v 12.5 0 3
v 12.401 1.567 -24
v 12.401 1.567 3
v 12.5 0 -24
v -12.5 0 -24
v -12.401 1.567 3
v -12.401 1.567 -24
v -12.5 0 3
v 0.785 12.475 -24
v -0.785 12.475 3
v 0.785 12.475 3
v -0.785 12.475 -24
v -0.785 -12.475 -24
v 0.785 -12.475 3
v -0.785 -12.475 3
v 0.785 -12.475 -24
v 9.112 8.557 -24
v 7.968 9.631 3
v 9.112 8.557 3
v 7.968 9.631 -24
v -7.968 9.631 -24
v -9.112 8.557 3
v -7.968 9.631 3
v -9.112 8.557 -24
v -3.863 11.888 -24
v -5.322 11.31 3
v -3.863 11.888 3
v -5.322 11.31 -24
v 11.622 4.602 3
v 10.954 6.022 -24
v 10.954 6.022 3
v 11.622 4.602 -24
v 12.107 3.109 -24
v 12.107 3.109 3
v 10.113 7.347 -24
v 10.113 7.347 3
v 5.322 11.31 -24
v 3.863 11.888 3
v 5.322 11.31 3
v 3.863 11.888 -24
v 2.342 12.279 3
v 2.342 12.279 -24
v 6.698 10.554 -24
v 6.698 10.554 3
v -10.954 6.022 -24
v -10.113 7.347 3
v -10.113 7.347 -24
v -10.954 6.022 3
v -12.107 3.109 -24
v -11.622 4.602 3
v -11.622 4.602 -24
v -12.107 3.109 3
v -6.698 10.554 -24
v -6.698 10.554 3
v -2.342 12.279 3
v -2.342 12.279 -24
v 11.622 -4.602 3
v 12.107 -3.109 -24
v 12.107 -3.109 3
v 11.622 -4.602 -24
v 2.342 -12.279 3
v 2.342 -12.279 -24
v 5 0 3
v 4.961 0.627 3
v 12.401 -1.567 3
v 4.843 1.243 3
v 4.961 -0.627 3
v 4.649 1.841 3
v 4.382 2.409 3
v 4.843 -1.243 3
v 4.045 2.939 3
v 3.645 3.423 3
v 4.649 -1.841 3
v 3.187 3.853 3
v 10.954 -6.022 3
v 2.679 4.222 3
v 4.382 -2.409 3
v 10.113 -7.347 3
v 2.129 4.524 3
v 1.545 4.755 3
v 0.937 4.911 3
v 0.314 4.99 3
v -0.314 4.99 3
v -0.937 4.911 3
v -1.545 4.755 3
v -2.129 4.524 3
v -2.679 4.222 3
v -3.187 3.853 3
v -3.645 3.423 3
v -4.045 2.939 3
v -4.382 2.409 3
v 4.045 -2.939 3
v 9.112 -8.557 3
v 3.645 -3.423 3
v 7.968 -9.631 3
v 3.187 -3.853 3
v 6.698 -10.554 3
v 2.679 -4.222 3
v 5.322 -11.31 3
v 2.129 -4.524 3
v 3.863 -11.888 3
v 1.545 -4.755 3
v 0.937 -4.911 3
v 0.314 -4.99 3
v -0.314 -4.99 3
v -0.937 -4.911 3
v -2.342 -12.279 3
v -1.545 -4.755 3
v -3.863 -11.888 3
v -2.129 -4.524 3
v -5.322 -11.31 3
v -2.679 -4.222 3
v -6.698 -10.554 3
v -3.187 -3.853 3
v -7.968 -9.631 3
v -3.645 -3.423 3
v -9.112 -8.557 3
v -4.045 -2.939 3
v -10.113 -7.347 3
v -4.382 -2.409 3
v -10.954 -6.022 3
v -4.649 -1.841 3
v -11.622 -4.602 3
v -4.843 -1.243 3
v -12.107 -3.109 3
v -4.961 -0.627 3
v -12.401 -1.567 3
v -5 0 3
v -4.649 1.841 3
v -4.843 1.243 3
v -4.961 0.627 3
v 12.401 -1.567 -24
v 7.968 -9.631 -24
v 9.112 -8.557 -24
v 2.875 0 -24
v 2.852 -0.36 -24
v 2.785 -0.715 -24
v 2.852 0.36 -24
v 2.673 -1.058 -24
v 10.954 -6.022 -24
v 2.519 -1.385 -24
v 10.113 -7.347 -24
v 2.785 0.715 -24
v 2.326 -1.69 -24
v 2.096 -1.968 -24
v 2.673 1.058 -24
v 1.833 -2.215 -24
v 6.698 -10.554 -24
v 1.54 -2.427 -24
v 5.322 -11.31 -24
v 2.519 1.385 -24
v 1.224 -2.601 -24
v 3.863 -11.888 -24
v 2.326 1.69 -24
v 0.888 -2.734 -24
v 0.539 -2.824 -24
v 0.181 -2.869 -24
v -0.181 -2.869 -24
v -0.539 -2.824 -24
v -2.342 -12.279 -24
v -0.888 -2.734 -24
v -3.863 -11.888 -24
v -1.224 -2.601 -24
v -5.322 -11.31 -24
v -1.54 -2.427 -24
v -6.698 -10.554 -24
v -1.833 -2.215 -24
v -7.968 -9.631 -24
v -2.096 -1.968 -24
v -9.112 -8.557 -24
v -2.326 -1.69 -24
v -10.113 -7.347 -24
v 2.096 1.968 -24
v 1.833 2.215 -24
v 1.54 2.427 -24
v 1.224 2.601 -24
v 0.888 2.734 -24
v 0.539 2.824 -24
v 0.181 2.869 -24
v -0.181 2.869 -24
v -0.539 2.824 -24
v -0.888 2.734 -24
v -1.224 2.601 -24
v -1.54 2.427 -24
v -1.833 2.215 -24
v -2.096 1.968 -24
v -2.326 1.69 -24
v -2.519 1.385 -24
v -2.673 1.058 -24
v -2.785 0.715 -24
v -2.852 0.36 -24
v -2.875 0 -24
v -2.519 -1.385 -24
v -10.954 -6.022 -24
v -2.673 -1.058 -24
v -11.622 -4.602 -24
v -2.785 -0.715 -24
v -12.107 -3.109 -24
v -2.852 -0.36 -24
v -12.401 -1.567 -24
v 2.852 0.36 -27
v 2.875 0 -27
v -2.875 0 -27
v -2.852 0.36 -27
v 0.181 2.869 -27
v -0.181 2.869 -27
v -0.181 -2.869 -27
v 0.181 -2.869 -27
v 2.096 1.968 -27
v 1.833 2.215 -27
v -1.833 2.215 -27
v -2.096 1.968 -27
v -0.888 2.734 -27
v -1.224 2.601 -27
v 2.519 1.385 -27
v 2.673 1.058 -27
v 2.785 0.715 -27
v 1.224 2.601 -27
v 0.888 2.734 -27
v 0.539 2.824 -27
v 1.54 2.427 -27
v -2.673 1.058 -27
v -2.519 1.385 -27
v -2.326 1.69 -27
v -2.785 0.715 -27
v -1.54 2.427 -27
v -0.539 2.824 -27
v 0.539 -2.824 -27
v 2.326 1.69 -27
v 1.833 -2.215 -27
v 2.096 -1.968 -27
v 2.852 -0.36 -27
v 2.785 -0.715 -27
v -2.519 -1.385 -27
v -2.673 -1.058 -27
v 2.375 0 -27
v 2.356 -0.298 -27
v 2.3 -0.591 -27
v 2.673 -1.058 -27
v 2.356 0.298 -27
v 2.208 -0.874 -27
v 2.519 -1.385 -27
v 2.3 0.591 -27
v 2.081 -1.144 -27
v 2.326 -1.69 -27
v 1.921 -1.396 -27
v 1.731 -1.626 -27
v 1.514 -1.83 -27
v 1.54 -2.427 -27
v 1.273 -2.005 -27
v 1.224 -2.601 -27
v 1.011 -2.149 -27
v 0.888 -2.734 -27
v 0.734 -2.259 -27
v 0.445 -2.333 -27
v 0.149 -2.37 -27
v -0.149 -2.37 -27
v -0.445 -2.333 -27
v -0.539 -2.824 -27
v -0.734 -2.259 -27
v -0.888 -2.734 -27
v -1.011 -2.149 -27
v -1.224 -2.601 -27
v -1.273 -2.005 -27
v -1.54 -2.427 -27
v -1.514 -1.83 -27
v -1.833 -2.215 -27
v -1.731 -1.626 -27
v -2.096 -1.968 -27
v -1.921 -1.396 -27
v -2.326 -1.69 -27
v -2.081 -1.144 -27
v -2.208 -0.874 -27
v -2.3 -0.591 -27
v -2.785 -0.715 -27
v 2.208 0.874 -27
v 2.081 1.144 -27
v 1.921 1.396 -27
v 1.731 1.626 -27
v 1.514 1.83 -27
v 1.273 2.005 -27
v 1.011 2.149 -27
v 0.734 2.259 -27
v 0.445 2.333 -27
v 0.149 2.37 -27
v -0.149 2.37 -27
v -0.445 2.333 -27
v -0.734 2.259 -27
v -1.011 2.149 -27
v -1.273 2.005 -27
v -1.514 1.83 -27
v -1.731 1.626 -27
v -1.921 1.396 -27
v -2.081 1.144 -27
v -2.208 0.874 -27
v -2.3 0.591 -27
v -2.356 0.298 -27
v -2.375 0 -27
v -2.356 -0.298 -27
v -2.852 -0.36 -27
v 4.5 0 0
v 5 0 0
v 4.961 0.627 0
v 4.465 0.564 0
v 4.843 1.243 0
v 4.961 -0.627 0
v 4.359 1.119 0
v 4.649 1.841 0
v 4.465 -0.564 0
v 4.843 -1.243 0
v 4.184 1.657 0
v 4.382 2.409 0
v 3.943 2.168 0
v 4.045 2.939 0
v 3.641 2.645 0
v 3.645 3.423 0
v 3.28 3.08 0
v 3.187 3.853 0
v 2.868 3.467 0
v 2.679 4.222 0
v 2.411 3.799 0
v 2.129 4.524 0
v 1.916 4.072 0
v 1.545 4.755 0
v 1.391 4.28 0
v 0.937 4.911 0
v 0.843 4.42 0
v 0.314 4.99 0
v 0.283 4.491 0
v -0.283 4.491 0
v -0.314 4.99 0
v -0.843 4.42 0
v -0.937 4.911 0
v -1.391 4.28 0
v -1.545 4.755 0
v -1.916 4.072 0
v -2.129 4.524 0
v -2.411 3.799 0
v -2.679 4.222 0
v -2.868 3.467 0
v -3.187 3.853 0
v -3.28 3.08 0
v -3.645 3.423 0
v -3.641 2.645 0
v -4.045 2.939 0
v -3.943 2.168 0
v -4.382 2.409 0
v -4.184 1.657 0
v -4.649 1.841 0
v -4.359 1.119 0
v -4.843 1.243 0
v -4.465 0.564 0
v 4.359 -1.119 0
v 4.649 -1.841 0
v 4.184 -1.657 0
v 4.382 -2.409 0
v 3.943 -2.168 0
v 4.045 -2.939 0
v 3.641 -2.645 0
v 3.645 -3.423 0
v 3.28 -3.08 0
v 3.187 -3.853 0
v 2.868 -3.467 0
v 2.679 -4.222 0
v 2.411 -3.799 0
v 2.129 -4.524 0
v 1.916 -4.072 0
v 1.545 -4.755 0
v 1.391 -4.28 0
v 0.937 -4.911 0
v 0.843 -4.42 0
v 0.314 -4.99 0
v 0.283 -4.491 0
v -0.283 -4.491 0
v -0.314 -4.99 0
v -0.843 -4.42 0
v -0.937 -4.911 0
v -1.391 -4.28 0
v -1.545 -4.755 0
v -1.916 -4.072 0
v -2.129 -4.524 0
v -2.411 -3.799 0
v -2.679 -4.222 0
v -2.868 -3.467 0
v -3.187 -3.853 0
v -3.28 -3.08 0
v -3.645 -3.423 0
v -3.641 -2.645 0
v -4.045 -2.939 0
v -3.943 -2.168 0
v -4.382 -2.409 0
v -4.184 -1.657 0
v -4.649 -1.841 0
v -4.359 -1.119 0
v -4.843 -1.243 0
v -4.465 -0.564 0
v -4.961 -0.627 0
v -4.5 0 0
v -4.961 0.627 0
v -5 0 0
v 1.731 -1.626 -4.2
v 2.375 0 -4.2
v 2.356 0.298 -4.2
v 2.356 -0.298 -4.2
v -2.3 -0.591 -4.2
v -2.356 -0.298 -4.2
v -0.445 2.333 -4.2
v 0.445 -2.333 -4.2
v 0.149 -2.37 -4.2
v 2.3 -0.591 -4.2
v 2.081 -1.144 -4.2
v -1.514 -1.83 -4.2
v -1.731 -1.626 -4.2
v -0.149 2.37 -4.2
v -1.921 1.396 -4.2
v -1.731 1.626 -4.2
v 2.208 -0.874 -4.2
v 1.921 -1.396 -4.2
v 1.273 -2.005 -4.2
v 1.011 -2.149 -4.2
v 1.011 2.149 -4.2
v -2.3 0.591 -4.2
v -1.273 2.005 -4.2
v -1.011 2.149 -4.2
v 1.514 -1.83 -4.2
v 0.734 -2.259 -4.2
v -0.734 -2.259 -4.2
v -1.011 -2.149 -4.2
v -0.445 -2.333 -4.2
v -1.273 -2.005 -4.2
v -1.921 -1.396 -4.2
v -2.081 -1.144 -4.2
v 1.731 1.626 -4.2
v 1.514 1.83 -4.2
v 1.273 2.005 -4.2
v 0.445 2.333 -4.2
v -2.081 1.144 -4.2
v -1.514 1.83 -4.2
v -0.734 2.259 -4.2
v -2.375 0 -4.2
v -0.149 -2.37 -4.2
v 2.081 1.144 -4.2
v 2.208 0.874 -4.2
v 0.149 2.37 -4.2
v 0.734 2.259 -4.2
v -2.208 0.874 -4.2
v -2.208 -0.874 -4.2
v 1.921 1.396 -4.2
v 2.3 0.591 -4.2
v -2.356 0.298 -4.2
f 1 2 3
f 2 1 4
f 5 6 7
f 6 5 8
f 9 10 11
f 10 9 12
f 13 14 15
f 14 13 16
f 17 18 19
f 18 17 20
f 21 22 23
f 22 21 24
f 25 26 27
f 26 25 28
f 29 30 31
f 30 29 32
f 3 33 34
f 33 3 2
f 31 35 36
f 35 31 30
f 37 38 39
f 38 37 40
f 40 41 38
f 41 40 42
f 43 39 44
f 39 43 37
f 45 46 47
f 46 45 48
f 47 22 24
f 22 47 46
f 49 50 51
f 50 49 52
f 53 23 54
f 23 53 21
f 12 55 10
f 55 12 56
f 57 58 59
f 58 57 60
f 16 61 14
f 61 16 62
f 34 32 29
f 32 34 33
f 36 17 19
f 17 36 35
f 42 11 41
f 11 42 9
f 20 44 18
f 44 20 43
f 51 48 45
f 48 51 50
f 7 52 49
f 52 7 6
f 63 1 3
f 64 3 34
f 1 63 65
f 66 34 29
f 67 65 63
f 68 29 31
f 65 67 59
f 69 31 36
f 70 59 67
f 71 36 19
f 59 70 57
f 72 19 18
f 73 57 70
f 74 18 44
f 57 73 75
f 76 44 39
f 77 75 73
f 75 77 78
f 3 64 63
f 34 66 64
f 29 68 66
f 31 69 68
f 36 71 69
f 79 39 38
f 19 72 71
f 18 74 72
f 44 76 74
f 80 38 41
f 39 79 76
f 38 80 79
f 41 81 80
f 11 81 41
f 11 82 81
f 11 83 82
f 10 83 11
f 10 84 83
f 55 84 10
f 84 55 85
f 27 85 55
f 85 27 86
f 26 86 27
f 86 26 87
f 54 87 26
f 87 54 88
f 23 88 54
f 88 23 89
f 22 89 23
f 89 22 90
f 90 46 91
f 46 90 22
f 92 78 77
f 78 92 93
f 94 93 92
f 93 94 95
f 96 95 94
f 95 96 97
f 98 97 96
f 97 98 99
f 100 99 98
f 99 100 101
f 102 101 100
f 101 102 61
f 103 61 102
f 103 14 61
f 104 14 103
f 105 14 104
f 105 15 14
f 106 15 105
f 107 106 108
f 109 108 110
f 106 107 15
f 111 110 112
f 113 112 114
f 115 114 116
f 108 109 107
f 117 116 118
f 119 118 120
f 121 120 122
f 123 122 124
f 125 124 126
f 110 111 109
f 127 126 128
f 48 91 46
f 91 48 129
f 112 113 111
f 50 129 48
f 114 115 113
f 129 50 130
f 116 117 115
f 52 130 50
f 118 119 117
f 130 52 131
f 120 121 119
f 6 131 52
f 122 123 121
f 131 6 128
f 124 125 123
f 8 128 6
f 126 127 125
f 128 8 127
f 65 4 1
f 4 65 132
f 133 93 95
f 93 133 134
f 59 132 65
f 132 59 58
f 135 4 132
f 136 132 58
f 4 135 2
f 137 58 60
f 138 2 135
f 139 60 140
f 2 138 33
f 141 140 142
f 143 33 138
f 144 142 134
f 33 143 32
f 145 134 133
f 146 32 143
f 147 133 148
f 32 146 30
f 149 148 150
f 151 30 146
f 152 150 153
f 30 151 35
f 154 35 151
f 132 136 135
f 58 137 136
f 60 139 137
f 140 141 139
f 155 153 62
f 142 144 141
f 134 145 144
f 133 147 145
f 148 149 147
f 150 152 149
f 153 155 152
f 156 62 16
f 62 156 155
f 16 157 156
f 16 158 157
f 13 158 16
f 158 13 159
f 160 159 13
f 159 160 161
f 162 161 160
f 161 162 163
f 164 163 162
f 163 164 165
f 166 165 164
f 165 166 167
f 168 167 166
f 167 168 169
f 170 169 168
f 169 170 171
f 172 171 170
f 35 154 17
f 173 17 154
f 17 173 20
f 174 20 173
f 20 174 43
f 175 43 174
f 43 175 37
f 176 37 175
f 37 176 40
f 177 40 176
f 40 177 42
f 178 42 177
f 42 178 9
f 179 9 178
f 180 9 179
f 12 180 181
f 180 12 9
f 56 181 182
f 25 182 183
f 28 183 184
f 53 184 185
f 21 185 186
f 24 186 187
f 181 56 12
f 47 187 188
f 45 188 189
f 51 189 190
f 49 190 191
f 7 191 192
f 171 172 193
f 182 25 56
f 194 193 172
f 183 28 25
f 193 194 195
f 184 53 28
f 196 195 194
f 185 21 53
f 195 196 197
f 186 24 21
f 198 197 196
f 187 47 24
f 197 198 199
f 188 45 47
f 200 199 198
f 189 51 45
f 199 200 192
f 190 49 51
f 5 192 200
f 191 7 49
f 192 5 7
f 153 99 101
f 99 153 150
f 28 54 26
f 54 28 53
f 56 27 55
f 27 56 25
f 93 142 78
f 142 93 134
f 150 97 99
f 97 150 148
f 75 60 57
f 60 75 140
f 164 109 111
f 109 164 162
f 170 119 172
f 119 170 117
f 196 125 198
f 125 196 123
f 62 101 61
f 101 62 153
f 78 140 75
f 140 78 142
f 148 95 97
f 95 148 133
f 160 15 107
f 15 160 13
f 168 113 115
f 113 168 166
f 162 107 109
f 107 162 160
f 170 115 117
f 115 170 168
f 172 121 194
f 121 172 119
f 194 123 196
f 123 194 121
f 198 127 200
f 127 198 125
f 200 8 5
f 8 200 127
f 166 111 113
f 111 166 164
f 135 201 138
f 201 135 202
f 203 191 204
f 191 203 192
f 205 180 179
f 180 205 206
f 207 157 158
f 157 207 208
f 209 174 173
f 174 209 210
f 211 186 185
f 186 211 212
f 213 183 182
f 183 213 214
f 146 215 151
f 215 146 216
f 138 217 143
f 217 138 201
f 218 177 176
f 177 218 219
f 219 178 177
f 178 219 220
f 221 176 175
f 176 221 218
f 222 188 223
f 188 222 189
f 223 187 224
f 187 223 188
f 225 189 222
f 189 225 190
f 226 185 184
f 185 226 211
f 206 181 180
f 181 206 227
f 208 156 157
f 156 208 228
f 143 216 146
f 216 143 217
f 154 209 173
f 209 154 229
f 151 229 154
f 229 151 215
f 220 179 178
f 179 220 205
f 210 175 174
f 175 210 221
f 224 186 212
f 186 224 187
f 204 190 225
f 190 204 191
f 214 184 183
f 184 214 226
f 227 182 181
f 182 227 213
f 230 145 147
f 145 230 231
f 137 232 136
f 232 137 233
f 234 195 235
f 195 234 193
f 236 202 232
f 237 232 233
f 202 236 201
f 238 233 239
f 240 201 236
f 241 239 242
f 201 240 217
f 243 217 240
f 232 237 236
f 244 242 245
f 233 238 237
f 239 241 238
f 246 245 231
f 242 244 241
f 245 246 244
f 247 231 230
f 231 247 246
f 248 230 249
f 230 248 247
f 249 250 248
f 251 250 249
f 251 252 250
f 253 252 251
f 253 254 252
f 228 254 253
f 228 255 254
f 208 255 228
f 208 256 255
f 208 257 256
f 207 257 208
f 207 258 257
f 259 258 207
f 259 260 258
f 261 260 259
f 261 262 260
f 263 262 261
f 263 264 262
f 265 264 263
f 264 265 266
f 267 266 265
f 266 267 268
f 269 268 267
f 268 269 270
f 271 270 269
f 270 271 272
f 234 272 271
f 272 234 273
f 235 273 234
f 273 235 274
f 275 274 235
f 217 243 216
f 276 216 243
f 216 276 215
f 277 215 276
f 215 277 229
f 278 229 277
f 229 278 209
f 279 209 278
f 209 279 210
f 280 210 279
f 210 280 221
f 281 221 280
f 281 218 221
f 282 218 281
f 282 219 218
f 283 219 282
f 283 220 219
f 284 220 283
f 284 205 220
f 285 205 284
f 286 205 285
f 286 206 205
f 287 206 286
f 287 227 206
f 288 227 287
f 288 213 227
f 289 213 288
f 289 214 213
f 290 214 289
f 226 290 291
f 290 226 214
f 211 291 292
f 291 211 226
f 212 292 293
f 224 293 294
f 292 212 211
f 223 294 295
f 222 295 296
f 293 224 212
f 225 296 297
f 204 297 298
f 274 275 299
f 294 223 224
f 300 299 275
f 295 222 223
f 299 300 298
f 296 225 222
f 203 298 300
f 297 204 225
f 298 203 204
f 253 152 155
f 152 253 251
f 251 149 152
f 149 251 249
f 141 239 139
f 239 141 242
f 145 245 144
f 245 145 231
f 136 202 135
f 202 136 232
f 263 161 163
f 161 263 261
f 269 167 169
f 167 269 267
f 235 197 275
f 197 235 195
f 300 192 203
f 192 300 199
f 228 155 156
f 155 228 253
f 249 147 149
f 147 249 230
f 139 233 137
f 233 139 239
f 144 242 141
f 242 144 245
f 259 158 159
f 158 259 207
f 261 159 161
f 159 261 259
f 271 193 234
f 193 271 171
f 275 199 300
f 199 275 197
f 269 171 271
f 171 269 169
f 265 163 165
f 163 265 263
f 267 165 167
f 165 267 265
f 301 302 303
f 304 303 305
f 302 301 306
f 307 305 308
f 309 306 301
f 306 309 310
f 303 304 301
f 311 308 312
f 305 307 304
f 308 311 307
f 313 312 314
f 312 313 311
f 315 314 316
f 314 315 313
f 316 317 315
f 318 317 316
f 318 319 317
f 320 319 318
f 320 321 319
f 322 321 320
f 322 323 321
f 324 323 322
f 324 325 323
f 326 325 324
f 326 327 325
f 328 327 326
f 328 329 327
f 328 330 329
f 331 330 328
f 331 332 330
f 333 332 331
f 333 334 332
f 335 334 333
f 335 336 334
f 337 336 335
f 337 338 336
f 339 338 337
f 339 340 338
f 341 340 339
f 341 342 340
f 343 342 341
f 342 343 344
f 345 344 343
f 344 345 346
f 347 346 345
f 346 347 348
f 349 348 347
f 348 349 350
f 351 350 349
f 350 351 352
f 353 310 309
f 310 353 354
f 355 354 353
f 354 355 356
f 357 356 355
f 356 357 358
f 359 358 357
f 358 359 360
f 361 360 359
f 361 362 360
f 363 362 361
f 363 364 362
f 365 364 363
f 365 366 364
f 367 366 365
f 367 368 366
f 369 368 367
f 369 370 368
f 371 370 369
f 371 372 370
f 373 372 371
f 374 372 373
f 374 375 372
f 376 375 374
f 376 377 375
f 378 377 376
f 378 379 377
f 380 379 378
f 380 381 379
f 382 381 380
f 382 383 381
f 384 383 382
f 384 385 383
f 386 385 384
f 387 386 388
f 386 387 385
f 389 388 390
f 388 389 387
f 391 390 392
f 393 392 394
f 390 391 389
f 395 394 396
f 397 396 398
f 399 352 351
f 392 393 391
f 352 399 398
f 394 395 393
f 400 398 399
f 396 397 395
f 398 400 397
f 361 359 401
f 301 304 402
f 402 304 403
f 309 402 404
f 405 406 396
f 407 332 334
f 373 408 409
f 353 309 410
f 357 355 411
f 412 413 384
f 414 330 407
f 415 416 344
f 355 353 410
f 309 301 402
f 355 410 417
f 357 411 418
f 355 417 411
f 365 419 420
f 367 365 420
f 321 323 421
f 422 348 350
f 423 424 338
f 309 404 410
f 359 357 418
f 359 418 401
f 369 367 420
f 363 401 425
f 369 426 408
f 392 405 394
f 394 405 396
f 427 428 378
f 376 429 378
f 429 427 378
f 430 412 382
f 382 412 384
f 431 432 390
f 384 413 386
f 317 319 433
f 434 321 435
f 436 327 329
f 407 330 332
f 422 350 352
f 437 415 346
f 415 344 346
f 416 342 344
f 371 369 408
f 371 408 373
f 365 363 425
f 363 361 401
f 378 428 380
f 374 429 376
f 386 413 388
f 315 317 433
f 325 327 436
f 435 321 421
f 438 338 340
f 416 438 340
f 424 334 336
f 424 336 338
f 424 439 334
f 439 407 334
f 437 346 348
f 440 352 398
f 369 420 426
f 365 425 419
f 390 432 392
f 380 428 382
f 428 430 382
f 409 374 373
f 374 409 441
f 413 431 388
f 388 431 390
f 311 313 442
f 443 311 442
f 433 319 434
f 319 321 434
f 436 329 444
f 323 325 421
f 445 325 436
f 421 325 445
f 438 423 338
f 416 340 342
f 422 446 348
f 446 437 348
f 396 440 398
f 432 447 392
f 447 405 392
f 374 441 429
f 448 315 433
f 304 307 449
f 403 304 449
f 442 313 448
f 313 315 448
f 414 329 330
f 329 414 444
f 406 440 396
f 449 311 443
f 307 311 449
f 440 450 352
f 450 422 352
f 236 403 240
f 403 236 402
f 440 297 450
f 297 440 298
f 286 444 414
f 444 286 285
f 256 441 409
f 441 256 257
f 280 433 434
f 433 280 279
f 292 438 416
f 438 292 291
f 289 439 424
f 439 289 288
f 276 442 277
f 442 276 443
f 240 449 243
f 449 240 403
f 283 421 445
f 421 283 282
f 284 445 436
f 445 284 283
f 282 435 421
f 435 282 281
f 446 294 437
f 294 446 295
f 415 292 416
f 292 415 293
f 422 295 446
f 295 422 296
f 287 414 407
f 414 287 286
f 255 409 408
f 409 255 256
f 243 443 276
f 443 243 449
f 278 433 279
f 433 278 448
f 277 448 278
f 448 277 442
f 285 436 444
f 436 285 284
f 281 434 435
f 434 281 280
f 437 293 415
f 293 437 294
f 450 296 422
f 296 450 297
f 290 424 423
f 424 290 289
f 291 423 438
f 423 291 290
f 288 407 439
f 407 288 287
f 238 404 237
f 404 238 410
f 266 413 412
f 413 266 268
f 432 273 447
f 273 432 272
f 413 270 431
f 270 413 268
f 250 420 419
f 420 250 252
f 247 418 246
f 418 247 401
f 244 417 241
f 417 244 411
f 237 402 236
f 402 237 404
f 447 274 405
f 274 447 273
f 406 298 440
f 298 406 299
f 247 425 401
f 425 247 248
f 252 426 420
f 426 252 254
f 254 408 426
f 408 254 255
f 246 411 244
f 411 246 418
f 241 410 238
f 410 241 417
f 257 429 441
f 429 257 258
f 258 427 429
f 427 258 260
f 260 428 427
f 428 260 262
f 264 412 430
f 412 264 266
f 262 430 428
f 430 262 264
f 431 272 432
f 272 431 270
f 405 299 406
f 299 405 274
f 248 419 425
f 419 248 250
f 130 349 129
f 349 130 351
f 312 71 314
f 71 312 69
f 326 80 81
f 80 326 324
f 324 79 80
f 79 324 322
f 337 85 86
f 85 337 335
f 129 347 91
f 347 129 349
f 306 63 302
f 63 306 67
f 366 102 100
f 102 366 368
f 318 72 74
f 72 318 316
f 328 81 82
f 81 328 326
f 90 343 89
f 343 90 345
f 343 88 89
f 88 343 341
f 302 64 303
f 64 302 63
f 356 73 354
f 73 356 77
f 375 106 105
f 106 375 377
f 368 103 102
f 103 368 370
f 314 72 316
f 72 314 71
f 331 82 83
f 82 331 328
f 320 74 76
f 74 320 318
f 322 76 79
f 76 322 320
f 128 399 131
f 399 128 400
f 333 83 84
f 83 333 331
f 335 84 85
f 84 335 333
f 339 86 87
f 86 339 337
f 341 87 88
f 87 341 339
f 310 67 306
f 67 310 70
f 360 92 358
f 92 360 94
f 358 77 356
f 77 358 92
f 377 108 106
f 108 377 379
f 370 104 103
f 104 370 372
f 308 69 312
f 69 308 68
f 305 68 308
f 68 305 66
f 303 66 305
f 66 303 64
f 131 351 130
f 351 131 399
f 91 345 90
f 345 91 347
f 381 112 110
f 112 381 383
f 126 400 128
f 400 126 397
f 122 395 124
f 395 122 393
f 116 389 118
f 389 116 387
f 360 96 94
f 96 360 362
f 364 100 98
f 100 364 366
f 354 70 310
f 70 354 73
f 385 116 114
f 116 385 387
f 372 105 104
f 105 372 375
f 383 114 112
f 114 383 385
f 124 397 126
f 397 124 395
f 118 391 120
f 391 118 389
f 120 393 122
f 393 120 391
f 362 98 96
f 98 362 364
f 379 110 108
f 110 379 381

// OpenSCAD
$fn = 50;

difference() {
	union() {
		translate(v = [0, 0, -24.0]) {
			cylinder(h = 27, r = 12.5);
		}
		#translate(v = [0, 0, -27.0]) {
			cylinder(h = 27, r = 2.875);
		}
	}
	union() {
		translate(v = [0, 0, 0]) {
			rotate(a = [0, 0, 0]) {
				difference() {
					union() {
						translate(v = [0, 0, -27.0]) {
							cylinder(h = 27, r = 2.25);
						}
						translate(v = [0, 0, -4.2]) {
							cylinder(h = 4.2, r1 = 2.375, r2 = 4.5);
						}
						translate(v = [0, 0, -27.0]) {
							cylinder(h = 27, r = 2.375);
						}
						translate(v = [0, 0, -27.0]) {
							cylinder(h = 27, r = 2.25);
						}
					}
					union();
				}
			}
		}
		#cylinder(h = 3, r = 5.0);
	}
}
